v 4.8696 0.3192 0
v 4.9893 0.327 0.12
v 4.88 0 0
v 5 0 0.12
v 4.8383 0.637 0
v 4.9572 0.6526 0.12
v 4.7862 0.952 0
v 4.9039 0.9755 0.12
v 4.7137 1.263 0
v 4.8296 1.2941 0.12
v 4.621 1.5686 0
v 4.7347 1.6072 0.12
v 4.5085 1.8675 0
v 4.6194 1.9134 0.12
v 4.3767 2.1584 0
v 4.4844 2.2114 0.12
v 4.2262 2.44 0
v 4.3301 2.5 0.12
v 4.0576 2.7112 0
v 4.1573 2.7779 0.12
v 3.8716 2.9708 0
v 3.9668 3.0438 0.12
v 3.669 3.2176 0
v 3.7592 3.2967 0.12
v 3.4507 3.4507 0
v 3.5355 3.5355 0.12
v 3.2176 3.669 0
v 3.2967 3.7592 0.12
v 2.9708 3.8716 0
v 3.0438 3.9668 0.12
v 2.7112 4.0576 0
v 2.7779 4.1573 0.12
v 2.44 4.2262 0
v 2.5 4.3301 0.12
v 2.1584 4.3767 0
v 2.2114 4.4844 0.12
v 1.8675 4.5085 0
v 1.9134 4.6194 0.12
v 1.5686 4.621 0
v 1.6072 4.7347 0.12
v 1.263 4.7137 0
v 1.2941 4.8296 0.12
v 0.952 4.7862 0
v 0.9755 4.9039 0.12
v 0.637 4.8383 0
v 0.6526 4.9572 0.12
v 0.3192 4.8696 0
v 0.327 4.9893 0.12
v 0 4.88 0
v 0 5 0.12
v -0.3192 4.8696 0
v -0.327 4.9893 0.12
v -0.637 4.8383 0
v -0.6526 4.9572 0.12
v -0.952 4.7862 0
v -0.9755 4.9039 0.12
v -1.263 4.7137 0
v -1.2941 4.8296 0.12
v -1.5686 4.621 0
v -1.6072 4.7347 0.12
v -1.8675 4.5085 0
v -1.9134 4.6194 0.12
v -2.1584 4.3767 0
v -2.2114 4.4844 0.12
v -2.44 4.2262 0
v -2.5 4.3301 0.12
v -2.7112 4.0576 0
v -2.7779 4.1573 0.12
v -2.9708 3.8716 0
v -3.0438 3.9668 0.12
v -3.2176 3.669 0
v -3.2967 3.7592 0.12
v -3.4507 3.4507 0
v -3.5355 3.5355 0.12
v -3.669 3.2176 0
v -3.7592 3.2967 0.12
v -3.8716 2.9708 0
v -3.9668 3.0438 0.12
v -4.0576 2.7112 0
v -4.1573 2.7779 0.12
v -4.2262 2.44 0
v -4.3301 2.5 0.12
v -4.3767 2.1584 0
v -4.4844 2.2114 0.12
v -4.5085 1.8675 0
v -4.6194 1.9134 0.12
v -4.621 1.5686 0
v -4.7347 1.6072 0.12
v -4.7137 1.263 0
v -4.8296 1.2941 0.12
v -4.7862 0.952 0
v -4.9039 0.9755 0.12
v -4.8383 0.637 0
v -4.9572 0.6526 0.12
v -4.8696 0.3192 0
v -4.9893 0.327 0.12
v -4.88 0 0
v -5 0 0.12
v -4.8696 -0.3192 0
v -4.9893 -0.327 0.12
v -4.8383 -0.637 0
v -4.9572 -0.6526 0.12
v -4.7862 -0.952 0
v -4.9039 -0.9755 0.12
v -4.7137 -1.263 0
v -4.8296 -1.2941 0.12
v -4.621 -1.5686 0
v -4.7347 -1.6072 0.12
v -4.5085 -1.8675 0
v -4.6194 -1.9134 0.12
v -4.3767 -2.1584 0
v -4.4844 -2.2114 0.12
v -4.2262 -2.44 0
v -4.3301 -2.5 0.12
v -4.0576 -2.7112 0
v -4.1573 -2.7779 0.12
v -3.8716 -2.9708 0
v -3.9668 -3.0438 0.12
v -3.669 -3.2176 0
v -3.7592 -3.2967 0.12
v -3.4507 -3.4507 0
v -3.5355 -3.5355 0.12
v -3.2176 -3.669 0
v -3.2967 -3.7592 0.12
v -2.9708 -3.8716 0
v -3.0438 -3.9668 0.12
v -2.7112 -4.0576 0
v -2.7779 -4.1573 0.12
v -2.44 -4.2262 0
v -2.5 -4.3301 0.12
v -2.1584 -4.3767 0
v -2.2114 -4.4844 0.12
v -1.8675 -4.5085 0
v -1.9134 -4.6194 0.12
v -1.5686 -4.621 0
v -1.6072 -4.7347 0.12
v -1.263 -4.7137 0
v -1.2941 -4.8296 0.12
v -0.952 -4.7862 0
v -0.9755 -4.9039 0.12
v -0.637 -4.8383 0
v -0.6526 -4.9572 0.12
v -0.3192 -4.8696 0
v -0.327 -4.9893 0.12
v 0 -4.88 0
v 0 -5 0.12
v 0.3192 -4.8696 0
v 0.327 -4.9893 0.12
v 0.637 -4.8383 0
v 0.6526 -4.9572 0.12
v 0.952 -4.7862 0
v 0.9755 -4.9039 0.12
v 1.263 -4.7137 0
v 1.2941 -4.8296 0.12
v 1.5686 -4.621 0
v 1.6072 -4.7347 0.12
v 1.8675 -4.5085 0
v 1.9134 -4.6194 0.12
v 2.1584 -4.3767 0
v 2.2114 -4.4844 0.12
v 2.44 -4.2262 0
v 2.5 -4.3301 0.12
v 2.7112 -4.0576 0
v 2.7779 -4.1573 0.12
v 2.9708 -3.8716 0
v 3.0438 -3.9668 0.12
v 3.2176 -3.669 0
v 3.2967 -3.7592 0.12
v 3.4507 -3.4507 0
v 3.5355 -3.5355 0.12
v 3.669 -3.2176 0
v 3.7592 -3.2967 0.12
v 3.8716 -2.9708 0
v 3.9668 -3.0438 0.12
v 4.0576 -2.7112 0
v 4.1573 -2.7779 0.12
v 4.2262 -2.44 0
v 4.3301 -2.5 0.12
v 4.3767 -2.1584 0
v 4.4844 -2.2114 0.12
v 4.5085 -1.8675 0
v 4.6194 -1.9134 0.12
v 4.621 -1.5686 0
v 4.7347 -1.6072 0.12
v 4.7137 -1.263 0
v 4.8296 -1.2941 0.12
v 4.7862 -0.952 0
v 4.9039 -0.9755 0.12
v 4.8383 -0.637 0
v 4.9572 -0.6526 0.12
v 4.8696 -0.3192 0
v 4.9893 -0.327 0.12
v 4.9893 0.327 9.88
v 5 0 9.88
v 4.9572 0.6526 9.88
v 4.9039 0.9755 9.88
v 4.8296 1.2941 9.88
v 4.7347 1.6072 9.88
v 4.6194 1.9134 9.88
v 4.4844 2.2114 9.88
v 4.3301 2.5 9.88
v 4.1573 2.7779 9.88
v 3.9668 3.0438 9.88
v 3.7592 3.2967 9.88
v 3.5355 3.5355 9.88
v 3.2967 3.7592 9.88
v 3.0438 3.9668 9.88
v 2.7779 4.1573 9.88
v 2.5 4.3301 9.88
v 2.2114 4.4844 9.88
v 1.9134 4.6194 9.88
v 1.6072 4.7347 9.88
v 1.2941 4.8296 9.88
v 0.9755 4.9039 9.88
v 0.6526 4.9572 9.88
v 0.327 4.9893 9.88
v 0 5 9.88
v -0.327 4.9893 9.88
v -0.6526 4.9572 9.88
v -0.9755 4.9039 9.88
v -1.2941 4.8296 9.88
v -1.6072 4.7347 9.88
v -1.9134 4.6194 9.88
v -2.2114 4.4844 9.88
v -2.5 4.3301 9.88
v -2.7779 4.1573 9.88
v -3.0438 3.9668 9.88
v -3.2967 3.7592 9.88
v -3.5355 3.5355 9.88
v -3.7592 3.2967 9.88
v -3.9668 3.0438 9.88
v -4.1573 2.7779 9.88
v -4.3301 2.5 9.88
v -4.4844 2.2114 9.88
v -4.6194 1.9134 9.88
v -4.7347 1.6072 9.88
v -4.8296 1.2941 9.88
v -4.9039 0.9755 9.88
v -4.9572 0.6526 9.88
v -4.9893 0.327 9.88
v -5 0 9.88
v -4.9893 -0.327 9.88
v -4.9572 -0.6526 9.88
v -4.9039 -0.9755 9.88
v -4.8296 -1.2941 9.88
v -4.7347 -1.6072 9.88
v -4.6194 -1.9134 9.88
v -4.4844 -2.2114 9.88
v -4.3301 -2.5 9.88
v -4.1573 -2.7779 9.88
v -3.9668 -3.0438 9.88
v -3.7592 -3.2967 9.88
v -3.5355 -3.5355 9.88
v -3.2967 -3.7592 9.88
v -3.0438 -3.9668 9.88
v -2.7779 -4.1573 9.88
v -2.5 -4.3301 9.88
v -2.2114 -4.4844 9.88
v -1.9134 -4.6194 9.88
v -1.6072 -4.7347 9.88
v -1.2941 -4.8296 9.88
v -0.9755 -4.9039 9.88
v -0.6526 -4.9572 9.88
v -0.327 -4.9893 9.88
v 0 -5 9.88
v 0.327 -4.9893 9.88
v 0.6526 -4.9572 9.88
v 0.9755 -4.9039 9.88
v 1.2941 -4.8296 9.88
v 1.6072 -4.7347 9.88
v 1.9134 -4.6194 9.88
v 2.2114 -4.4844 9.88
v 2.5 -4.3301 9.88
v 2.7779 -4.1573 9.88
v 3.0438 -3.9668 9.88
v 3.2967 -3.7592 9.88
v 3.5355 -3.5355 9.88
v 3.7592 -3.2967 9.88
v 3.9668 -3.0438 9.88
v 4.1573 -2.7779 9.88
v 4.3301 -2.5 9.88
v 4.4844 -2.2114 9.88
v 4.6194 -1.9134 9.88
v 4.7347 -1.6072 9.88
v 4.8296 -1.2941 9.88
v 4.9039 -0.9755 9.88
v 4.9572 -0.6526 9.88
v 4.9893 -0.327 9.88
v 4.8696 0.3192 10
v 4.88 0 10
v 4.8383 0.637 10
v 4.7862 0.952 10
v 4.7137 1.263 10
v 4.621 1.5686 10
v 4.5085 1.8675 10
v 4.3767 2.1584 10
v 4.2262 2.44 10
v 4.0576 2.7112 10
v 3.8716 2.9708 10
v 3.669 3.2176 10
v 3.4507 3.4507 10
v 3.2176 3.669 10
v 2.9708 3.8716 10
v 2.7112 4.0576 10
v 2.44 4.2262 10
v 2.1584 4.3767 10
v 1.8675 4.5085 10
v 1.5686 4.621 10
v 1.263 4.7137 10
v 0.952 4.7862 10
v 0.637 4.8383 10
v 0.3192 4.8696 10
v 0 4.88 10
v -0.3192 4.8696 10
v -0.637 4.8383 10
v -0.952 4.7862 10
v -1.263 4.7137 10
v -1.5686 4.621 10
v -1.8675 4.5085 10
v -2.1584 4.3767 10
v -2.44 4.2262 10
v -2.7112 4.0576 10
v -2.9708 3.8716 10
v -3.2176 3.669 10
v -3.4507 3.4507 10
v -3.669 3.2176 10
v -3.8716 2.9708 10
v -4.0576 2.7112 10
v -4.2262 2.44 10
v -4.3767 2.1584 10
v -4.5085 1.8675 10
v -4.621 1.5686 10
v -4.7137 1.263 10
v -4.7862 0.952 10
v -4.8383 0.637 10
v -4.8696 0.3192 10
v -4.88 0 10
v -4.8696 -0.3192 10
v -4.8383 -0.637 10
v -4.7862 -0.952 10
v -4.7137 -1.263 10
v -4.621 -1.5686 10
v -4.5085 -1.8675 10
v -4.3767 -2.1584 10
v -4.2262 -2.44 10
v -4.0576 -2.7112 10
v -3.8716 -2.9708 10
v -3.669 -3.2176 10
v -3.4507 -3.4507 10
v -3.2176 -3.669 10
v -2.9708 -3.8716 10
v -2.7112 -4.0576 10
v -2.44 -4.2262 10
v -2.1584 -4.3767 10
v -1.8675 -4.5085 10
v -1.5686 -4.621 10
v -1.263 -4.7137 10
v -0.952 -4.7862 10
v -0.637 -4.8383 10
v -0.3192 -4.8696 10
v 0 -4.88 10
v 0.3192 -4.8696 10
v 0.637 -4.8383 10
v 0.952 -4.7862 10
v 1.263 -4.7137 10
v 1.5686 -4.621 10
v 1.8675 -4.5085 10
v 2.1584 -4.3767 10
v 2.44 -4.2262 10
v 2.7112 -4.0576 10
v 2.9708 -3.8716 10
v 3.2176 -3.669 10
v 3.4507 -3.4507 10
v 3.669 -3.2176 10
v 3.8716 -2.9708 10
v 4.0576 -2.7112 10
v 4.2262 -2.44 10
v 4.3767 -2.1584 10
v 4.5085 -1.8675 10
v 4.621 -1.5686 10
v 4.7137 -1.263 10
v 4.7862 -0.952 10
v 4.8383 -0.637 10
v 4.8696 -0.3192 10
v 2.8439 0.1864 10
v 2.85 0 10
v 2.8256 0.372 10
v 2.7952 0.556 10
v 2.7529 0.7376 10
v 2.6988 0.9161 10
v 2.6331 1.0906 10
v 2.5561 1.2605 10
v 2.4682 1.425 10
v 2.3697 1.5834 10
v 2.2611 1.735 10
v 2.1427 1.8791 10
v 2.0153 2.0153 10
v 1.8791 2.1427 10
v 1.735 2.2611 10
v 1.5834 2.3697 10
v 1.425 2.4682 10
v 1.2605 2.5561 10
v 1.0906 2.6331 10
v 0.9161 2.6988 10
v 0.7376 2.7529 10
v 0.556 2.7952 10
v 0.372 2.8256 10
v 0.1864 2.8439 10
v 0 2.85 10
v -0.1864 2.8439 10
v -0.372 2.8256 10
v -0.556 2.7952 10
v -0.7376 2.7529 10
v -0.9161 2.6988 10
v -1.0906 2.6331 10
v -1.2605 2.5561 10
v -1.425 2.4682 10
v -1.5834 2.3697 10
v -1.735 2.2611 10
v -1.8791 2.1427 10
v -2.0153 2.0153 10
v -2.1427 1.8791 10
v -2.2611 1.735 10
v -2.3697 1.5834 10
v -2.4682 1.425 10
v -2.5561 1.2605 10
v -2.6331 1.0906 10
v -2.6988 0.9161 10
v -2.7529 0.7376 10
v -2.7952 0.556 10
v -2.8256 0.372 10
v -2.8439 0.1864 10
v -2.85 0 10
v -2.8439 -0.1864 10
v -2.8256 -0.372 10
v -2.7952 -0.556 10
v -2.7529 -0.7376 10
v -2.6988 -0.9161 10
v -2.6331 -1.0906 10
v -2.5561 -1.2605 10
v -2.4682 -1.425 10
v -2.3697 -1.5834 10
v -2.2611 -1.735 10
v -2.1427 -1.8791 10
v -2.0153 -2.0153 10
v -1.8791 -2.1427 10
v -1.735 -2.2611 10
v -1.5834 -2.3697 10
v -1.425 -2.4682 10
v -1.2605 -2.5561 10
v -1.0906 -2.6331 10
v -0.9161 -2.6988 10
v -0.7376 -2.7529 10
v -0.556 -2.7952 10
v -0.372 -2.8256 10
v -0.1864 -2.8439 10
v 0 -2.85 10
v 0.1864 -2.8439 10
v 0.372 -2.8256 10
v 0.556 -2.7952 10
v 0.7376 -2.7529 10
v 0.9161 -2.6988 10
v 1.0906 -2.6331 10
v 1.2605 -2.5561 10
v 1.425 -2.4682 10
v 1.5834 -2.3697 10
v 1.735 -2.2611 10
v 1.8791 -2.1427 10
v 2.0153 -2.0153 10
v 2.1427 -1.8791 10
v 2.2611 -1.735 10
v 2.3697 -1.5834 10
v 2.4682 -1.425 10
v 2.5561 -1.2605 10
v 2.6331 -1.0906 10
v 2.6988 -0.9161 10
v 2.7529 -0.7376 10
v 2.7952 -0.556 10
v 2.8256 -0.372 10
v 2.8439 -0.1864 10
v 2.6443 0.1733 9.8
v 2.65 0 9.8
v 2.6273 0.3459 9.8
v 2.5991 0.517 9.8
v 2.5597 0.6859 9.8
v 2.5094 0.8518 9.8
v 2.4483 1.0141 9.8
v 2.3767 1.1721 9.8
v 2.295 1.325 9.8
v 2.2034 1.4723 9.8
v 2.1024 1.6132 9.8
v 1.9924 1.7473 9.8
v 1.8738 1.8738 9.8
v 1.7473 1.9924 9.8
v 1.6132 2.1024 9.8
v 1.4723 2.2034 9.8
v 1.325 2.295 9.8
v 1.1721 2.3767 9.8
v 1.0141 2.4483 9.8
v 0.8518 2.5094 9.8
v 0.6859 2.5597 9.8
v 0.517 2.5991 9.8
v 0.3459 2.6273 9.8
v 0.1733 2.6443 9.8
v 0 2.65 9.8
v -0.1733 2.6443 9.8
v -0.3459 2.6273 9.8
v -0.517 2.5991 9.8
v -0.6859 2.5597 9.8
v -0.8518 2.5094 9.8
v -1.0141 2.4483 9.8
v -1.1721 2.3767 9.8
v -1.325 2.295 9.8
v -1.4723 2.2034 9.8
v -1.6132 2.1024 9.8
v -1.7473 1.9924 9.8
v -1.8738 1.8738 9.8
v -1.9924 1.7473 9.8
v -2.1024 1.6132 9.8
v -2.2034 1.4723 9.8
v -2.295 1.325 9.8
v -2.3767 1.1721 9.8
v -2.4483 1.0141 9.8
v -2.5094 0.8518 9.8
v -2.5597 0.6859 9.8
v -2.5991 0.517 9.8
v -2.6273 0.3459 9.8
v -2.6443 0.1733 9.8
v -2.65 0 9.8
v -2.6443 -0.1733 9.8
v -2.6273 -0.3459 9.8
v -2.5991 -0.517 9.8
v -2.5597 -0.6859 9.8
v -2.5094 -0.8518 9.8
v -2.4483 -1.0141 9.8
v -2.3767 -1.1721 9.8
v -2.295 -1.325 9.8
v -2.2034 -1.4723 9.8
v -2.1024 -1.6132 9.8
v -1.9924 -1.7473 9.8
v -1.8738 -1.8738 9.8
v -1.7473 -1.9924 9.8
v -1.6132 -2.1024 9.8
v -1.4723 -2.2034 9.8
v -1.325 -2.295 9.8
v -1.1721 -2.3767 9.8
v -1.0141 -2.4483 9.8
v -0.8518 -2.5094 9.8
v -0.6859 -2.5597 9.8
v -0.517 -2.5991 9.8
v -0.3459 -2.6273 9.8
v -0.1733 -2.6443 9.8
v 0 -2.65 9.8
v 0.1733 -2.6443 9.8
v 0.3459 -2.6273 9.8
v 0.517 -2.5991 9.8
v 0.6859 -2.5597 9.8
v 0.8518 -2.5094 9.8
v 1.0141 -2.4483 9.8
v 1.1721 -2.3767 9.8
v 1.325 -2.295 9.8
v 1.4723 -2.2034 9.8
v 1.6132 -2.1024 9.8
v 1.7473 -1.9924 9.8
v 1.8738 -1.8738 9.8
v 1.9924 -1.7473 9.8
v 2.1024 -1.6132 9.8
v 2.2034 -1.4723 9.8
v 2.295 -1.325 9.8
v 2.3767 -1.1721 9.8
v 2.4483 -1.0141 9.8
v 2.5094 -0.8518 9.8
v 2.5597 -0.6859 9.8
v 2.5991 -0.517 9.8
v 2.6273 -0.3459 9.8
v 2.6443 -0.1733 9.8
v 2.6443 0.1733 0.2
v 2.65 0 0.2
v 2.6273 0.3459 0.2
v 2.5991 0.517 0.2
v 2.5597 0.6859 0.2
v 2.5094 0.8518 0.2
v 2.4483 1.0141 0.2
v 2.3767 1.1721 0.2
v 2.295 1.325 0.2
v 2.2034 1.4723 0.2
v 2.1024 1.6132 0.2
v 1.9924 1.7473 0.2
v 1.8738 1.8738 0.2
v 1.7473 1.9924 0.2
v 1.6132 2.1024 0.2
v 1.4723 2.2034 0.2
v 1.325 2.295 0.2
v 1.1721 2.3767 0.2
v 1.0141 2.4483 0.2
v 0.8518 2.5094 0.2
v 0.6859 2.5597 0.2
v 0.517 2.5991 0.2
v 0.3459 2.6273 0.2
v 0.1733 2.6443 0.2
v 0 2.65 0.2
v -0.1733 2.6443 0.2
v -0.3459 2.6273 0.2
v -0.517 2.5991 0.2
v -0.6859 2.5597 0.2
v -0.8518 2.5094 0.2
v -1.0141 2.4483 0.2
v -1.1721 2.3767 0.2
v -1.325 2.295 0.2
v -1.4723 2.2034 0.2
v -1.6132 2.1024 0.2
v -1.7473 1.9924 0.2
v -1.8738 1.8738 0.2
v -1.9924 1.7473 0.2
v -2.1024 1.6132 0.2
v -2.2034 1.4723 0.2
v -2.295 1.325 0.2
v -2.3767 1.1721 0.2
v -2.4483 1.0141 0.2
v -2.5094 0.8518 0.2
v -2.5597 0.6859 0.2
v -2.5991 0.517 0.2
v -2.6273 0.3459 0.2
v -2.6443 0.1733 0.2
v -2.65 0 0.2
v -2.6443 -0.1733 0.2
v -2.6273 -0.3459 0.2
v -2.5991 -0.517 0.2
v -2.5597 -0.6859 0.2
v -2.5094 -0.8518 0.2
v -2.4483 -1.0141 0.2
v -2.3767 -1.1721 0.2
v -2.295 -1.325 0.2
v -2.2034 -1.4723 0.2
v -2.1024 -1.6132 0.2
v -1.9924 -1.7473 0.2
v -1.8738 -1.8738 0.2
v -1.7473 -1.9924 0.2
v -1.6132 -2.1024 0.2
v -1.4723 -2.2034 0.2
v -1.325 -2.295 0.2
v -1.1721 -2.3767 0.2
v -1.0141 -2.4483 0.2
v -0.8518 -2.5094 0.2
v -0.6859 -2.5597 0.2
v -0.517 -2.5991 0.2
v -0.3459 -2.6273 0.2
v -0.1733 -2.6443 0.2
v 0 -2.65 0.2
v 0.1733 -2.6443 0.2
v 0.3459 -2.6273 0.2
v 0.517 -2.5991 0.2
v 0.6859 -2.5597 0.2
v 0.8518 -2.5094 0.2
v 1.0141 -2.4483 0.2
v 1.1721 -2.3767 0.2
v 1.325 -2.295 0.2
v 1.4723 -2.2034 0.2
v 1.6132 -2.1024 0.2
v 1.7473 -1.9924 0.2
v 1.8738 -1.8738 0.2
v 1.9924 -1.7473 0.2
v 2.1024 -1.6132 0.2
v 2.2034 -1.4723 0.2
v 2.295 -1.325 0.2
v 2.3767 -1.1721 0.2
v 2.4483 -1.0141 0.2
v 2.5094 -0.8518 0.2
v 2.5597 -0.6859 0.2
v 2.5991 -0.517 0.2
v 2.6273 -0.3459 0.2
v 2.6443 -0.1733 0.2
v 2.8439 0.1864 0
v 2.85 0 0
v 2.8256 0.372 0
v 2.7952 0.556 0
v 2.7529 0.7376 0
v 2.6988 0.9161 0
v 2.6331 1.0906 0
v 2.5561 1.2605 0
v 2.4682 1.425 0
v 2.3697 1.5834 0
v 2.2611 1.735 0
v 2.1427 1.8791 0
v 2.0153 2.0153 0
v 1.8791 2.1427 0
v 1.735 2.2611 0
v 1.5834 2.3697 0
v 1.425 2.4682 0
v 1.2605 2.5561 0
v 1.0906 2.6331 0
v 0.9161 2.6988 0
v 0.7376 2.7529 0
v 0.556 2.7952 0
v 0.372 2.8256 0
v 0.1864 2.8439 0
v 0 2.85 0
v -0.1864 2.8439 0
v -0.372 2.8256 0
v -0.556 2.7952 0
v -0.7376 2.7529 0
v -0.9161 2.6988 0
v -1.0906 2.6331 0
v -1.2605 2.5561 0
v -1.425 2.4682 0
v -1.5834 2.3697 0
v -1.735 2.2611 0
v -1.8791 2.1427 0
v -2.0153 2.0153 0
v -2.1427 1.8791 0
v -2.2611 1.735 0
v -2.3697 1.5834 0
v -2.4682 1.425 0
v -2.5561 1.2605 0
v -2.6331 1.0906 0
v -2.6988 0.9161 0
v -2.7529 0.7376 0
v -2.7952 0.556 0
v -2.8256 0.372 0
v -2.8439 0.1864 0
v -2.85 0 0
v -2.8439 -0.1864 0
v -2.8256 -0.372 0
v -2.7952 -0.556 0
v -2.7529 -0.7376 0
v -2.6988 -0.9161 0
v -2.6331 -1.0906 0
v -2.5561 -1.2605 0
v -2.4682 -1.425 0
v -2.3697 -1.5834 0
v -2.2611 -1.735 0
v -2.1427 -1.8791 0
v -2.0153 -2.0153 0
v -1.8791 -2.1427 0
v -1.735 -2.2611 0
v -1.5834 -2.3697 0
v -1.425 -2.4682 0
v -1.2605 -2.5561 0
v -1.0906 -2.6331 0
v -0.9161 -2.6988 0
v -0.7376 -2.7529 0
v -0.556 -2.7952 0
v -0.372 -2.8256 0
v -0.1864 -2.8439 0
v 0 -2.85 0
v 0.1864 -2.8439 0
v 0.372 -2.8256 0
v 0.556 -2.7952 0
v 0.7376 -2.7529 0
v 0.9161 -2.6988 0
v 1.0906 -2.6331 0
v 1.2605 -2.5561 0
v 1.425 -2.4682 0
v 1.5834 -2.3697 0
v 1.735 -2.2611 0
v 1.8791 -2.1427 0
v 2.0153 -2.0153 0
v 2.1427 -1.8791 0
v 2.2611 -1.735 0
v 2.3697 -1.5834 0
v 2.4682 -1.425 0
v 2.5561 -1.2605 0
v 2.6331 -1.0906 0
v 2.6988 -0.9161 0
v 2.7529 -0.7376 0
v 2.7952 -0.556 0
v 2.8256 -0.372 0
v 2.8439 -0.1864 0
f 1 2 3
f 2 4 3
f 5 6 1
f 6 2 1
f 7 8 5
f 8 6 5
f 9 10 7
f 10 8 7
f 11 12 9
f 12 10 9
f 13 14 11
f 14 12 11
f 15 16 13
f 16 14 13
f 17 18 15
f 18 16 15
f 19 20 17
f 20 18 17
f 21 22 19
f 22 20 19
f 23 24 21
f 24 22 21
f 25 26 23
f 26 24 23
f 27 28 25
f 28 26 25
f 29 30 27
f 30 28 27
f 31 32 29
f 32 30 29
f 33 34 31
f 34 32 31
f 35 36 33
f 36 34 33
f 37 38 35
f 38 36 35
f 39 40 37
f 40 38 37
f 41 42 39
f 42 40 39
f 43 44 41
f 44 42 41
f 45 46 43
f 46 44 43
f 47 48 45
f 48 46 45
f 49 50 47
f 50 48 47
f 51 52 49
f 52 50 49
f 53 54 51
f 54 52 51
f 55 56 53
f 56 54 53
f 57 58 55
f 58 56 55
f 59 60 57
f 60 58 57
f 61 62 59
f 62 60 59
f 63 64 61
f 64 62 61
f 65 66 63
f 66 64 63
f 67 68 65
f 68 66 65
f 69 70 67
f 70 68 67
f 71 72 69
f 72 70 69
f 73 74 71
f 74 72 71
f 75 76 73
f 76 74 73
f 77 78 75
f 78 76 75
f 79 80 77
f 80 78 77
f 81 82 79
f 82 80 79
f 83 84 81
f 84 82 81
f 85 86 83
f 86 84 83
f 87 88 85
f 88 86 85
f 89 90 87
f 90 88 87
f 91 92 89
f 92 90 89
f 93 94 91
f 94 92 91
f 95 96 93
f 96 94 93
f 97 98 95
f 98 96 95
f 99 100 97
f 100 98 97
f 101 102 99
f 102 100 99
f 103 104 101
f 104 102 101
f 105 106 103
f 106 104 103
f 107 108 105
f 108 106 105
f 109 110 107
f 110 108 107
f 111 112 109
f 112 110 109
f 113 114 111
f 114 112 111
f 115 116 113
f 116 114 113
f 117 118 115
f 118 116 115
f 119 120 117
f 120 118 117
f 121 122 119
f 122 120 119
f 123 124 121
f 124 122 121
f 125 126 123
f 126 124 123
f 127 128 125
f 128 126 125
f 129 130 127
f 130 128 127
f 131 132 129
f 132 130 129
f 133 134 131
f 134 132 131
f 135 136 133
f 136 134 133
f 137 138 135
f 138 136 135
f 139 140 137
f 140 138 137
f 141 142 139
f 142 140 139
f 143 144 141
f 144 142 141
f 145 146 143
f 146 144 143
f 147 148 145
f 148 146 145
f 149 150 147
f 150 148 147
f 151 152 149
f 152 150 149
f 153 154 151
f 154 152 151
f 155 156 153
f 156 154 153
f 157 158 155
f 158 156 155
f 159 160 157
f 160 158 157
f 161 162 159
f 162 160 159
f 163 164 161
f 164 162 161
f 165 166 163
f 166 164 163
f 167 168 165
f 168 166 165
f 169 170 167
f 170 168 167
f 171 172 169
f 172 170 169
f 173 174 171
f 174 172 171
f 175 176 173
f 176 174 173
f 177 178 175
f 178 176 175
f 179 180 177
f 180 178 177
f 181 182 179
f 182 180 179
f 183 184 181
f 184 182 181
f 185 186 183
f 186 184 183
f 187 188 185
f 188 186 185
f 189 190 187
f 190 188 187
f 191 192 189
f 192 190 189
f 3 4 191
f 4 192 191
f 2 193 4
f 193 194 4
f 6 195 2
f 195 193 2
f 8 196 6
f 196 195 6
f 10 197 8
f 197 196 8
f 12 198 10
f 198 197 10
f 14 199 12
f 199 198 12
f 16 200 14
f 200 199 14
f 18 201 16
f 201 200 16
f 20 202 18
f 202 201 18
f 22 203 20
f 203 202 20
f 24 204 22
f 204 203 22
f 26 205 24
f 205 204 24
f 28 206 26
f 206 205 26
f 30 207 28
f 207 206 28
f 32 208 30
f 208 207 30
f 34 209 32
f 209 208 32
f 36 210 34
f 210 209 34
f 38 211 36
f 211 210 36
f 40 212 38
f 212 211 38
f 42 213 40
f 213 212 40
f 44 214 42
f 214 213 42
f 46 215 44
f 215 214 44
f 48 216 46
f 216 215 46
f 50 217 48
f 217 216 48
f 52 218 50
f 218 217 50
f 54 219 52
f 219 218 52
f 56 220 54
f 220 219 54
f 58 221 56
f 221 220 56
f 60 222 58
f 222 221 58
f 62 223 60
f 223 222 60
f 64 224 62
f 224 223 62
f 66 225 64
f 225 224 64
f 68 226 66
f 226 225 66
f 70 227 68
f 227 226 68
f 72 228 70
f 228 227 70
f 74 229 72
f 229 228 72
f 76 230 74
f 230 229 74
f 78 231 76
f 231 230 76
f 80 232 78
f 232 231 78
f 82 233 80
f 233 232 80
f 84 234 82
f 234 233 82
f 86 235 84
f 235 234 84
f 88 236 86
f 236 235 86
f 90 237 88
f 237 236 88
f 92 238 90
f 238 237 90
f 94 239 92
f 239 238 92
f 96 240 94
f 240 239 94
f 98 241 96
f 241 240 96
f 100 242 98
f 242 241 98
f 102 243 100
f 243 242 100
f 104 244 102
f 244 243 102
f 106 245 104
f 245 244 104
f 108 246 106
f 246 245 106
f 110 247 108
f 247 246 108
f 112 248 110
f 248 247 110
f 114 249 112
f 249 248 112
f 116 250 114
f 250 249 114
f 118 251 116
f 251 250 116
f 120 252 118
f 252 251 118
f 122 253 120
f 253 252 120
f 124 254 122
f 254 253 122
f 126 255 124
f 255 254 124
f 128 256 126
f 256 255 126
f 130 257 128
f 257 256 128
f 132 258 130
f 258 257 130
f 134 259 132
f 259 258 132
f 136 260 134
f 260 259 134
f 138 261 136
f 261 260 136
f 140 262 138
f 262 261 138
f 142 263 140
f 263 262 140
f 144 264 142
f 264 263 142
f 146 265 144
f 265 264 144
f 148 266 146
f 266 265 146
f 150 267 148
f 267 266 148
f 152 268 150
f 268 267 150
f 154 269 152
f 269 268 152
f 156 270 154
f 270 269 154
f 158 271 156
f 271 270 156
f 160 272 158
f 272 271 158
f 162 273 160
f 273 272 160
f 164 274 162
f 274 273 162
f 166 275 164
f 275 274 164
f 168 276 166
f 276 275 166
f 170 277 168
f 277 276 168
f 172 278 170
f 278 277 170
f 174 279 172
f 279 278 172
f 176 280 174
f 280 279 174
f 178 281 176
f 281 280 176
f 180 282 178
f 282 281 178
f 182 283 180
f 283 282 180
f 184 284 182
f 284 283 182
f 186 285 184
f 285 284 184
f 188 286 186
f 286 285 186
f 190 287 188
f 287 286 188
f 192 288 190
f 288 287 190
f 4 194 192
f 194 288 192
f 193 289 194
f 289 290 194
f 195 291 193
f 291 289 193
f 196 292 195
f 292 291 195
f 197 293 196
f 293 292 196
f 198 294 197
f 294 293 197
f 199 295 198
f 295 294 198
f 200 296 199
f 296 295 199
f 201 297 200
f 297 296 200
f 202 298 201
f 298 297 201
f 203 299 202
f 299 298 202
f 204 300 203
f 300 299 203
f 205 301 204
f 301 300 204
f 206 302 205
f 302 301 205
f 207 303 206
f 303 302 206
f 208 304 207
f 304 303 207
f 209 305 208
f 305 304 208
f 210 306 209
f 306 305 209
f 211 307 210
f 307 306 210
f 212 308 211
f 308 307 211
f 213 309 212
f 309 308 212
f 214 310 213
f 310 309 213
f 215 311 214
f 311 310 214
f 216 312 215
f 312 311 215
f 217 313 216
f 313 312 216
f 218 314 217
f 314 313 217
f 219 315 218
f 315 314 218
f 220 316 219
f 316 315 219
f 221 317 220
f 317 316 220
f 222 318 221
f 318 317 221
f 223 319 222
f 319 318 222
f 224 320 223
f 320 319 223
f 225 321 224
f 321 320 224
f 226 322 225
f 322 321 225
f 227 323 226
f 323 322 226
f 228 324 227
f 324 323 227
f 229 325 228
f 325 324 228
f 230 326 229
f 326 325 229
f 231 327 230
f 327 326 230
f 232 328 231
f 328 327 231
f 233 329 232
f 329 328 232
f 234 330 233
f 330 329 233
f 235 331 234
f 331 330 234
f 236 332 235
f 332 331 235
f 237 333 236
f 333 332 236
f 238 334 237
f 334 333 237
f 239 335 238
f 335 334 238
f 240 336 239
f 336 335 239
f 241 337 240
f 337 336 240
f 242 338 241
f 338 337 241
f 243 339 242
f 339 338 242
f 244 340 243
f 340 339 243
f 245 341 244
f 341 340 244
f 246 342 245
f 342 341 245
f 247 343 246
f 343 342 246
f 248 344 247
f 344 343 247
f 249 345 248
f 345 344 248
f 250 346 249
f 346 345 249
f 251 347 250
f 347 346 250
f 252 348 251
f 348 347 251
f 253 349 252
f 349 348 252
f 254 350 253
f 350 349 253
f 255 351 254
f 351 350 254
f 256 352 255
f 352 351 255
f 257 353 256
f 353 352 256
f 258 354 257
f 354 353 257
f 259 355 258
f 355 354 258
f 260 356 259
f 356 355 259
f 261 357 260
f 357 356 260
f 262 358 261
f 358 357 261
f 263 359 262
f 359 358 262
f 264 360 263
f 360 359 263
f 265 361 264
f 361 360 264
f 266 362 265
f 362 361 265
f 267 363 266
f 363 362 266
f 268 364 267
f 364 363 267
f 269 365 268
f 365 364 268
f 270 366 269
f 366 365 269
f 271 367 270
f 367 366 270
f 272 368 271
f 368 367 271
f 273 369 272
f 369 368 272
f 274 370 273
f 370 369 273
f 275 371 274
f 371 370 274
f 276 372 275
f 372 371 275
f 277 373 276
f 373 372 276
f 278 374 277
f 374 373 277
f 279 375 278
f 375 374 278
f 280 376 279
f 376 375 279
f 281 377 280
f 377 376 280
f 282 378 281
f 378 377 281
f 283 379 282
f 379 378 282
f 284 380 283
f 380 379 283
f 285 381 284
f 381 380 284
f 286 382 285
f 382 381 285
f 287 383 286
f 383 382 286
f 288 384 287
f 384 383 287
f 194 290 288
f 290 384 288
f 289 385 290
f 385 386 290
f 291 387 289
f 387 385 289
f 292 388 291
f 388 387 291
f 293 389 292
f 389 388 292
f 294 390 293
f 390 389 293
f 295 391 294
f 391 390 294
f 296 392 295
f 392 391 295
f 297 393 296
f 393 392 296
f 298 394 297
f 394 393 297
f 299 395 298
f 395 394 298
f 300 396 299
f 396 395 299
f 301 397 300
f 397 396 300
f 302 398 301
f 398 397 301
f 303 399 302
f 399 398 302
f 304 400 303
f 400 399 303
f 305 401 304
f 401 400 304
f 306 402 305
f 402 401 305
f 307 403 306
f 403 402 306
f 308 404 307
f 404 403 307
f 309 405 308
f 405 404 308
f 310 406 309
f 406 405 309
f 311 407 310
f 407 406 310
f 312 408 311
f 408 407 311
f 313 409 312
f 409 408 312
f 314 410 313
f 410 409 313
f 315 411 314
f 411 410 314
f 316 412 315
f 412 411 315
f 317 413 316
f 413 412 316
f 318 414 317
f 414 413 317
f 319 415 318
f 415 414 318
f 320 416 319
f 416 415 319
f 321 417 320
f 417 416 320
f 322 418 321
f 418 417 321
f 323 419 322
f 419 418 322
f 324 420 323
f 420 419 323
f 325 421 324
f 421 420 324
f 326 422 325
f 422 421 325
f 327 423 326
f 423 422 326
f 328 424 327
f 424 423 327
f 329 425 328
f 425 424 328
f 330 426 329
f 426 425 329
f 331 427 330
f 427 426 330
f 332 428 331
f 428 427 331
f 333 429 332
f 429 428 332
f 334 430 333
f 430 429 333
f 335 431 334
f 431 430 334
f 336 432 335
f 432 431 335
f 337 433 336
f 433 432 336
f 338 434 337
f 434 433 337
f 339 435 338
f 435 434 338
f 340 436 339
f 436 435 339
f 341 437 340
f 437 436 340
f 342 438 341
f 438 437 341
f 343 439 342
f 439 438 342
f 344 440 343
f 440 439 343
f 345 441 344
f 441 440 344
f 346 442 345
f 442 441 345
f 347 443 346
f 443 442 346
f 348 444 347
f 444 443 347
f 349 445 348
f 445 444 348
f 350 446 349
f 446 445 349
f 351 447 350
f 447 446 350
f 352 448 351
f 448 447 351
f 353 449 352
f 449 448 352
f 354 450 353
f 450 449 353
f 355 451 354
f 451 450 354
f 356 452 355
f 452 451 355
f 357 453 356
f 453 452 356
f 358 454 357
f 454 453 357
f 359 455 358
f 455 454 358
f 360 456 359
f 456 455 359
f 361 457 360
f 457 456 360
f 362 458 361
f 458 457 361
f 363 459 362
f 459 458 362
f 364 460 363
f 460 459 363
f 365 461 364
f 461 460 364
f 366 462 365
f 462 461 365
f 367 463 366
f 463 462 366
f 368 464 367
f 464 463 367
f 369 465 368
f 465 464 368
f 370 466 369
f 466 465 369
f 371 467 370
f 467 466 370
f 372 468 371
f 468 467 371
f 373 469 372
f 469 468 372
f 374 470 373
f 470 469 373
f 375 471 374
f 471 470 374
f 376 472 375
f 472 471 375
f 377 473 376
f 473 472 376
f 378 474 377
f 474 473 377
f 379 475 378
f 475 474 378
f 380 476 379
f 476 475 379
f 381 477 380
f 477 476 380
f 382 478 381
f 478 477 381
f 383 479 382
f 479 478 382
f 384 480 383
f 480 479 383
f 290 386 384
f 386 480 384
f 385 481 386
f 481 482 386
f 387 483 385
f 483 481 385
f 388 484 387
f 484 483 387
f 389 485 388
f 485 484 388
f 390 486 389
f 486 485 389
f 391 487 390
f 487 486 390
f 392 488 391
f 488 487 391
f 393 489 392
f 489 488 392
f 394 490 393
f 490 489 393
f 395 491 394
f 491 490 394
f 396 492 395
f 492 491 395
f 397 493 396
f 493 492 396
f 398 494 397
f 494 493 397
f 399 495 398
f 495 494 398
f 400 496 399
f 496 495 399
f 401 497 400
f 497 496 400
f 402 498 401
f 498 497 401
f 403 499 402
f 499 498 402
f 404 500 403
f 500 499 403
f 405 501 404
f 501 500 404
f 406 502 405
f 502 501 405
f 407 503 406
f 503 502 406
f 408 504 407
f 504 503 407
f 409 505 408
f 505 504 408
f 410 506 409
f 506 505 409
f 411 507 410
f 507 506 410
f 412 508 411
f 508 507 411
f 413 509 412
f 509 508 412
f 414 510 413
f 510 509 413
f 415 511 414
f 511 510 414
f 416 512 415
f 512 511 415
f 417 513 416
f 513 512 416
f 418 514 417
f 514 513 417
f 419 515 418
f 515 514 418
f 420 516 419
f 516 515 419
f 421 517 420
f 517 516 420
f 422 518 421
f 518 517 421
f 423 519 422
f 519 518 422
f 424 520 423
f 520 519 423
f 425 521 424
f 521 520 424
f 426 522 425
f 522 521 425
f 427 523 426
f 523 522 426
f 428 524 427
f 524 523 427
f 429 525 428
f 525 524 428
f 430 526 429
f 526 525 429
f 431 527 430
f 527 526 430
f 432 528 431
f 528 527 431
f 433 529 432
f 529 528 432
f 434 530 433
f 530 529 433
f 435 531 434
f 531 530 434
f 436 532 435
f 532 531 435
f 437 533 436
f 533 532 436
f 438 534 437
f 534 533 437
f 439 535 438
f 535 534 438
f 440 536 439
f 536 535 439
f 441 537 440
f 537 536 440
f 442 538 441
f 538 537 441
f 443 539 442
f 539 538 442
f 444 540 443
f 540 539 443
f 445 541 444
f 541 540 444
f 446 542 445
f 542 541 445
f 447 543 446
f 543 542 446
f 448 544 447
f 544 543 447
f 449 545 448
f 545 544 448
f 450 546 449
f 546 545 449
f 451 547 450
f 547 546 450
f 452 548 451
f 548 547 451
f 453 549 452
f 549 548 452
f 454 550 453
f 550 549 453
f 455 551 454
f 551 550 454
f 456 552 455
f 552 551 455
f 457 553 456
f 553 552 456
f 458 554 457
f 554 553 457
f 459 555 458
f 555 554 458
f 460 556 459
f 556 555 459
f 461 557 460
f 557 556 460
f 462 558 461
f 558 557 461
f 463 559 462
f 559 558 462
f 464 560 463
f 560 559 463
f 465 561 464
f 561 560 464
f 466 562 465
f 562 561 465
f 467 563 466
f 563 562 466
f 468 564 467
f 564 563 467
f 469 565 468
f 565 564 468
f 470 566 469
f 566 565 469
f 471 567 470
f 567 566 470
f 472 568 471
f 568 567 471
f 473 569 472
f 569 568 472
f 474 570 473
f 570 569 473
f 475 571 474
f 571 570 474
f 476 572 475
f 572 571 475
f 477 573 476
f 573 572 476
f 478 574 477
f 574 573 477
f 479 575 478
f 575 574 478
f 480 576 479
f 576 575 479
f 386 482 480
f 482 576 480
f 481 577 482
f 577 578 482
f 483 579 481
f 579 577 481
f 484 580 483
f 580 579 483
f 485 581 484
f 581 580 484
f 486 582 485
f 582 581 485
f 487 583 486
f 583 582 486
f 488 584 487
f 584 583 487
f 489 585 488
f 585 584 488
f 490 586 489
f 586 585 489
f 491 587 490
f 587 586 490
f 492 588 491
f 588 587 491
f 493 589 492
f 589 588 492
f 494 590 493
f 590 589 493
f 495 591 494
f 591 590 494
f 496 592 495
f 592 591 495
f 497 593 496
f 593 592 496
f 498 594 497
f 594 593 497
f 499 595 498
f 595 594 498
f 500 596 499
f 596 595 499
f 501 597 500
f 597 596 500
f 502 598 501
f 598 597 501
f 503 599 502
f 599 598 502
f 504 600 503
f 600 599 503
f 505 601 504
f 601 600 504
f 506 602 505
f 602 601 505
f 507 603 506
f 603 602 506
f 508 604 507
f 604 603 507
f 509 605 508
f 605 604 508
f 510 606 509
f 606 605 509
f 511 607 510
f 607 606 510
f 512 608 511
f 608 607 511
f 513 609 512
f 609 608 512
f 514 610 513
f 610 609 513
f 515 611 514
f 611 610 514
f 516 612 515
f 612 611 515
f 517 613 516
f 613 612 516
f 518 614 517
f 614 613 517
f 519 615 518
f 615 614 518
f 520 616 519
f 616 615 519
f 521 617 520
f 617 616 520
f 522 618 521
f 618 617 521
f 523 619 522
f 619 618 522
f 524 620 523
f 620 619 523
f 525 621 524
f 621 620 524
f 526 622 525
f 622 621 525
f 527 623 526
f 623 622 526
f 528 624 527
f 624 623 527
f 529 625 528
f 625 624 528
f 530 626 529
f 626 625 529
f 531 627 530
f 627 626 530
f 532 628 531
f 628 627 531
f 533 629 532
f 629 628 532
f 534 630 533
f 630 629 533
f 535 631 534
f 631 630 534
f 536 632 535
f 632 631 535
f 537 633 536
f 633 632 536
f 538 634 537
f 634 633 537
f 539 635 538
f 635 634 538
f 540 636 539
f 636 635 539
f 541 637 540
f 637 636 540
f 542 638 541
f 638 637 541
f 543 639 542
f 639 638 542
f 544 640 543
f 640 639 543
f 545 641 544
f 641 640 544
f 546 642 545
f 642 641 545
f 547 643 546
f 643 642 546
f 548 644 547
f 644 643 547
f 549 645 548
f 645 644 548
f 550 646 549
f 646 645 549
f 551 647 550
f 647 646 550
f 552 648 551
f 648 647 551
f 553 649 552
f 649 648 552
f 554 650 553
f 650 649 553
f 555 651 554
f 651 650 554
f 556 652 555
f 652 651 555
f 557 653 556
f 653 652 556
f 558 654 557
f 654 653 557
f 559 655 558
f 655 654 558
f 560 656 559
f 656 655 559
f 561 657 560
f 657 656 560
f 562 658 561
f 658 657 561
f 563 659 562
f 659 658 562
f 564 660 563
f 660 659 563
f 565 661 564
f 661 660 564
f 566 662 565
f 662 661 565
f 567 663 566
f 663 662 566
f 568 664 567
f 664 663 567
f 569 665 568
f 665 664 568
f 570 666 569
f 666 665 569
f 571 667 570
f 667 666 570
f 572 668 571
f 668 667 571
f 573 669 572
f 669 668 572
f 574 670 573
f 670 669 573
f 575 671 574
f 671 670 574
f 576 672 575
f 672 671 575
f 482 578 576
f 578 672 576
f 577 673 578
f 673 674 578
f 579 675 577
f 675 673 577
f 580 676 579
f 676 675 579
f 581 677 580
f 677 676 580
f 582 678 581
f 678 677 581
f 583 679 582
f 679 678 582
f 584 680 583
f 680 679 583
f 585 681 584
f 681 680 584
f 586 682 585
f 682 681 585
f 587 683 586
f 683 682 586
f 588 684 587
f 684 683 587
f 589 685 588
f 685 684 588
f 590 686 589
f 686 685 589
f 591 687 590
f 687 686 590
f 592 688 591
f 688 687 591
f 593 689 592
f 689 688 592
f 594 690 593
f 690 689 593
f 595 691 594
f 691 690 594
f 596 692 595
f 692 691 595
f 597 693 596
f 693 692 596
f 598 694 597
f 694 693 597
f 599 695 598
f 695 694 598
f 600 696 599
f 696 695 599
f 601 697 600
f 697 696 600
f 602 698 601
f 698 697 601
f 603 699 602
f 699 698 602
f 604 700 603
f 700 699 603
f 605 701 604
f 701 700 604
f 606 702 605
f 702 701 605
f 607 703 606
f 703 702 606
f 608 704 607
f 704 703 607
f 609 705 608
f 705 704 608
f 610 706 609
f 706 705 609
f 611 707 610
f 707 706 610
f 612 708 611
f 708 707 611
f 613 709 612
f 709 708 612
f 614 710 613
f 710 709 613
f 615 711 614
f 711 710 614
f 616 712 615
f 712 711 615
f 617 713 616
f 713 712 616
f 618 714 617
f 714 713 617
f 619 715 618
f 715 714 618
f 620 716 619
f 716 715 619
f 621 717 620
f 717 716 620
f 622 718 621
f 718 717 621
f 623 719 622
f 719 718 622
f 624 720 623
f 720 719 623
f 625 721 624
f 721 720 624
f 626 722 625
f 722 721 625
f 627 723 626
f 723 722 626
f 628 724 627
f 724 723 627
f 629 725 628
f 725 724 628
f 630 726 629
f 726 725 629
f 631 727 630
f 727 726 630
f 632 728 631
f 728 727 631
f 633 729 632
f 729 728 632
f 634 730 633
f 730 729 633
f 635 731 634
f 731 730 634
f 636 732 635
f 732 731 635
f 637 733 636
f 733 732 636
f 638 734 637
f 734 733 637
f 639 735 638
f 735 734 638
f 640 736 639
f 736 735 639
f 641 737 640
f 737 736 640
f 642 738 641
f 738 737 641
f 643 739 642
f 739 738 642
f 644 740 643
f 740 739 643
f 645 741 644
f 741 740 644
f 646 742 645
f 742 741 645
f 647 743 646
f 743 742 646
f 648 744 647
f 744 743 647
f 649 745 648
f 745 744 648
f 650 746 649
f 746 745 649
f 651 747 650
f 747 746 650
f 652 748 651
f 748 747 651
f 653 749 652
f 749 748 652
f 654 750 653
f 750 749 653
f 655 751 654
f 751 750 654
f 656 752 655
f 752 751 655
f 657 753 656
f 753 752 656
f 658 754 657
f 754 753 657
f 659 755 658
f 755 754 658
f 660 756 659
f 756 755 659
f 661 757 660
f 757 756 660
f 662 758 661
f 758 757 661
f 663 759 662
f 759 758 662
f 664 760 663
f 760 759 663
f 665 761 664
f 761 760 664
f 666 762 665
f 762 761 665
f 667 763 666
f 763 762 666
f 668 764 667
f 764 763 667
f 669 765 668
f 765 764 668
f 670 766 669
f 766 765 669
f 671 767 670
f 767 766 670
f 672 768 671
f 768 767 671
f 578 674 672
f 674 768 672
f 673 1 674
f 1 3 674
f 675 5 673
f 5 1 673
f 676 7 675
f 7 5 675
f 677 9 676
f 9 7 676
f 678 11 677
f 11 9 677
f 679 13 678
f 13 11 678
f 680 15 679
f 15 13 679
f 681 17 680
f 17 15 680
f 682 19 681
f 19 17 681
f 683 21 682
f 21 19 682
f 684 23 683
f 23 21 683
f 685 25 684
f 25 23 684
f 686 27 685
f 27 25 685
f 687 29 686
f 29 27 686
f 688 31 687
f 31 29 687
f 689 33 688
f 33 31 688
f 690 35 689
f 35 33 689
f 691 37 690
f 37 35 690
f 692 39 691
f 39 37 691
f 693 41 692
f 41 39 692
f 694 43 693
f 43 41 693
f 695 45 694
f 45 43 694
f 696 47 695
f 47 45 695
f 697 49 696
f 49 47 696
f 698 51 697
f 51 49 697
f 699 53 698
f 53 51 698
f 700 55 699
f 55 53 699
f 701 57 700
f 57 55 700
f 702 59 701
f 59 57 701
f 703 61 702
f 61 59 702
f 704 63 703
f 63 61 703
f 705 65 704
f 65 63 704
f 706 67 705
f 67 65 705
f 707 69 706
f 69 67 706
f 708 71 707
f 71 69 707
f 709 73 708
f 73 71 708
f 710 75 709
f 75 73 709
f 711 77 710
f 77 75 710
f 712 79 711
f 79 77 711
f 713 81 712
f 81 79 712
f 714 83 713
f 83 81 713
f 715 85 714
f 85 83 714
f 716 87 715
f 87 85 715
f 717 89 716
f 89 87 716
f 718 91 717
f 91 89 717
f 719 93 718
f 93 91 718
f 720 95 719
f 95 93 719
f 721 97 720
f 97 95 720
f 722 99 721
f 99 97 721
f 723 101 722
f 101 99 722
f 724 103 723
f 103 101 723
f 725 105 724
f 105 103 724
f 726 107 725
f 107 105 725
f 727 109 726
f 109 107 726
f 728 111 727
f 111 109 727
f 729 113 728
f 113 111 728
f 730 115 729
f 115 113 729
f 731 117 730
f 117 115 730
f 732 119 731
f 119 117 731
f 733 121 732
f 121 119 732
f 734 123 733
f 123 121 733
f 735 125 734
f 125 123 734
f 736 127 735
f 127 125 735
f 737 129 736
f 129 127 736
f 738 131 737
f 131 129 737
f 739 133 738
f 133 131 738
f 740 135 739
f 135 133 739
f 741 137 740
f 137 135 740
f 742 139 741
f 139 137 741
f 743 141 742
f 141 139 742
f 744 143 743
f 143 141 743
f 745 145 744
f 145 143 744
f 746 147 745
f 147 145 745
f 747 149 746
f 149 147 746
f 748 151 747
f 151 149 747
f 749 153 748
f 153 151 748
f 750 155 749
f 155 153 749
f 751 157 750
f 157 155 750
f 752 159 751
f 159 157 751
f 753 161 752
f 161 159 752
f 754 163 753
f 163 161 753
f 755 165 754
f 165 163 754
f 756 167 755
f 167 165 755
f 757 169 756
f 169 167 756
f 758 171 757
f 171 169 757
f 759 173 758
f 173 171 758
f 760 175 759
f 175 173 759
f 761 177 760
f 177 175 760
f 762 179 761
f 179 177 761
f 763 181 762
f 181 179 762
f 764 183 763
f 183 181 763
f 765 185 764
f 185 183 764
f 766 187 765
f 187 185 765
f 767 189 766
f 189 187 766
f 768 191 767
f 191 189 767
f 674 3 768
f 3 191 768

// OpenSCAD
// OOMP generic catalogue model; units: mm.
// Stud length is additional to body depth. Tapping depths are model assumptions.
variant = "full"; // [full, display]
family = "spacer";
connection_type = "plain";
depth_mm = 10;
stud_length_mm = 0;
tapped_depth_mm = 0;
bore_mm = 5.3;
outer_diameter_mm = 10;
across_flats_mm = 6;
thread_nominal_diameter_mm = 3;
thread_pitch_mm = 0.5;
edge_chamfer_mm = 0.12;
mouth_chamfer_mm = 0.2;
angular_segments = 96;
samples_per_pitch = 16;

// Boundary travels up the outside, then down any tapped/plain bore.
// Equal-height rings at shoulders form the annular shoulder faces.
n = angular_segments;
threaded = family == "standoff";
has_stud = connection_type == "stud_to_tapped" || connection_type == "stud_to_stud";
two_studs = connection_type == "stud_to_stud";
through = !threaded || connection_type == "tapped_to_tapped";
pitch = thread_pitch_mm;
diameter = threaded ? thread_nominal_diameter_mm : bore_mm;
minor = diameter - 5*sqrt(3)*pitch/8;
transition = mouth_chamfer_mm + (threaded ? 5*sqrt(3)*pitch/16 : 0);
tip_chamfer = mouth_chamfer_mm + 17*sqrt(3)*pitch/48;
function sorted(v) = len(v)<=1 ? v : let(p=v[0])
    concat(sorted([for(x=v) if(x<p-1e-8) x]), [p], sorted([for(x=v) if(x>p+1e-8) x]));
function reverse(v) = [for(i=[len(v)-1:-1:0]) v[i]];
function theta(i) = i*360/n;
function fract(x) = x-floor(x);
function phase_distance(i,z) = abs(fract(z/pitch-theta(i)/360+0.5)-0.5);
function thread_r(i,z) = minor/2 + min(5*sqrt(3)*pitch/16,
    max(0,(phase_distance(i,z)-0.125)*pitch*sqrt(3)));
function stud_r(i,z,tip) = min(diameter/2 - (variant=="full" ?
    min(17*sqrt(3)*pitch/48,max(0,(phase_distance(i,z)-0.0625)*pitch*sqrt(3))) : 0),
    diameter/2-tip_chamfer+abs(z-tip));
function body_r(i,z) = (threaded ? across_flats_mm/2/cos(theta(i)%60-30) : outer_diameter_mm/2)
    - max(0,edge_chamfer_mm-min(z,depth_mm-z));
function bore_r(i,z) = max(threaded ? (variant=="full" ? thread_r(i,z) : minor/2) : diameter/2,
    diameter/2+mouth_chamfer_mm-(through ? min(z,depth_mm-z) : depth_mm-z));
function stud_z(a,b,tip) = let(count=variant=="full" ? ceil(stud_length_mm/pitch*samples_per_pitch) : 1)
    sorted(concat([for(i=[0:count]) a+(b-a)*i/count], [tip==a ? tip+tip_chamfer : tip-tip_chamfer]));
body_z = sorted([0,edge_chamfer_mm,depth_mm-edge_chamfer_mm,depth_mm]);
low = through ? 0 : depth_mm-tapped_depth_mm;
count = threaded && variant=="full" ? ceil((depth_mm-low)/pitch*samples_per_pitch) : 1;
bore_z = two_studs ? [] : reverse(sorted(concat(
    [for(i=[0:count]) low+(depth_mm-low)*i/count],
    [depth_mm-mouth_chamfer_mm,depth_mm-transition],
    through ? [mouth_chamfer_mm,transition] : [])));
// Ring descriptors: [height, kind, tip]. Kind: 0 body, 1 stud, 2 bore.
rings = concat(
    has_stud ? [for(z=stud_z(-stud_length_mm,0,-stud_length_mm)) [z,1,-stud_length_mm]] : [],
    [for(z=body_z) [z,0,0]],
    two_studs ? [for(z=stud_z(depth_mm,depth_mm+stud_length_mm,depth_mm+stud_length_mm)) [z,1,depth_mm+stud_length_mm]] : [],
    [for(z=bore_z) [z,2,0]]);
function radius(i,ring) = ring[1]==0 ? body_r(i,ring[0]) :
    ring[1]==1 ? stud_r(i,ring[0],ring[2]) : bore_r(i,ring[0]);
points = concat([for(ring=rings) for(i=[0:n-1])
    [radius(i,ring)*cos(theta(i)),radius(i,ring)*sin(theta(i)),ring[0]]],
    through ? [] : [[0,0,rings[0][0]],[0,0,rings[len(rings)-1][0]]]);
center = len(rings)*n;
last = (len(rings)-1)*n;
// OpenSCAD winding is opposite to STL winding.
faces = concat(
    [for(j=[0:len(rings)-(through ? 1 : 2)]) for(i=[0:n-1]) each
        let(a=j*n+i,b=j*n+(i+1)%n,c=((j+1)%len(rings))*n+(i+1)%n,d=((j+1)%len(rings))*n+i)
        [[a,c,b],[a,d,c]]],
    through ? [] : [for(i=[0:n-1]) each let(k=(i+1)%n)
        [[center,i,k],[center+1,last+k,last+i]]]);
assert(family=="spacer" || family=="standoff");
assert(!threaded || connection_type=="tapped_to_tapped" || has_stud);
assert(depth_mm>0 && diameter>0 && pitch>0);
assert(variant=="full" || variant=="display");
assert(n>=24 && n%12==0 && samples_per_pitch>=8);
assert(mouth_chamfer_mm>0 && mouth_chamfer_mm<depth_mm/2);
assert(edge_chamfer_mm>=0 && edge_chamfer_mm<depth_mm/2);
assert(diameter+4*max(mouth_chamfer_mm,edge_chamfer_mm) < (threaded ? across_flats_mm : outer_diameter_mm));
assert(!has_stud || stud_length_mm>2*mouth_chamfer_mm);
assert(!through || !threaded || 2*transition<depth_mm);
assert(connection_type!="stud_to_tapped" || (tapped_depth_mm>transition && tapped_depth_mm<depth_mm));
color([0.86,0.85,0.81]) polyhedron(points=points,faces=faces,convexity=20);
